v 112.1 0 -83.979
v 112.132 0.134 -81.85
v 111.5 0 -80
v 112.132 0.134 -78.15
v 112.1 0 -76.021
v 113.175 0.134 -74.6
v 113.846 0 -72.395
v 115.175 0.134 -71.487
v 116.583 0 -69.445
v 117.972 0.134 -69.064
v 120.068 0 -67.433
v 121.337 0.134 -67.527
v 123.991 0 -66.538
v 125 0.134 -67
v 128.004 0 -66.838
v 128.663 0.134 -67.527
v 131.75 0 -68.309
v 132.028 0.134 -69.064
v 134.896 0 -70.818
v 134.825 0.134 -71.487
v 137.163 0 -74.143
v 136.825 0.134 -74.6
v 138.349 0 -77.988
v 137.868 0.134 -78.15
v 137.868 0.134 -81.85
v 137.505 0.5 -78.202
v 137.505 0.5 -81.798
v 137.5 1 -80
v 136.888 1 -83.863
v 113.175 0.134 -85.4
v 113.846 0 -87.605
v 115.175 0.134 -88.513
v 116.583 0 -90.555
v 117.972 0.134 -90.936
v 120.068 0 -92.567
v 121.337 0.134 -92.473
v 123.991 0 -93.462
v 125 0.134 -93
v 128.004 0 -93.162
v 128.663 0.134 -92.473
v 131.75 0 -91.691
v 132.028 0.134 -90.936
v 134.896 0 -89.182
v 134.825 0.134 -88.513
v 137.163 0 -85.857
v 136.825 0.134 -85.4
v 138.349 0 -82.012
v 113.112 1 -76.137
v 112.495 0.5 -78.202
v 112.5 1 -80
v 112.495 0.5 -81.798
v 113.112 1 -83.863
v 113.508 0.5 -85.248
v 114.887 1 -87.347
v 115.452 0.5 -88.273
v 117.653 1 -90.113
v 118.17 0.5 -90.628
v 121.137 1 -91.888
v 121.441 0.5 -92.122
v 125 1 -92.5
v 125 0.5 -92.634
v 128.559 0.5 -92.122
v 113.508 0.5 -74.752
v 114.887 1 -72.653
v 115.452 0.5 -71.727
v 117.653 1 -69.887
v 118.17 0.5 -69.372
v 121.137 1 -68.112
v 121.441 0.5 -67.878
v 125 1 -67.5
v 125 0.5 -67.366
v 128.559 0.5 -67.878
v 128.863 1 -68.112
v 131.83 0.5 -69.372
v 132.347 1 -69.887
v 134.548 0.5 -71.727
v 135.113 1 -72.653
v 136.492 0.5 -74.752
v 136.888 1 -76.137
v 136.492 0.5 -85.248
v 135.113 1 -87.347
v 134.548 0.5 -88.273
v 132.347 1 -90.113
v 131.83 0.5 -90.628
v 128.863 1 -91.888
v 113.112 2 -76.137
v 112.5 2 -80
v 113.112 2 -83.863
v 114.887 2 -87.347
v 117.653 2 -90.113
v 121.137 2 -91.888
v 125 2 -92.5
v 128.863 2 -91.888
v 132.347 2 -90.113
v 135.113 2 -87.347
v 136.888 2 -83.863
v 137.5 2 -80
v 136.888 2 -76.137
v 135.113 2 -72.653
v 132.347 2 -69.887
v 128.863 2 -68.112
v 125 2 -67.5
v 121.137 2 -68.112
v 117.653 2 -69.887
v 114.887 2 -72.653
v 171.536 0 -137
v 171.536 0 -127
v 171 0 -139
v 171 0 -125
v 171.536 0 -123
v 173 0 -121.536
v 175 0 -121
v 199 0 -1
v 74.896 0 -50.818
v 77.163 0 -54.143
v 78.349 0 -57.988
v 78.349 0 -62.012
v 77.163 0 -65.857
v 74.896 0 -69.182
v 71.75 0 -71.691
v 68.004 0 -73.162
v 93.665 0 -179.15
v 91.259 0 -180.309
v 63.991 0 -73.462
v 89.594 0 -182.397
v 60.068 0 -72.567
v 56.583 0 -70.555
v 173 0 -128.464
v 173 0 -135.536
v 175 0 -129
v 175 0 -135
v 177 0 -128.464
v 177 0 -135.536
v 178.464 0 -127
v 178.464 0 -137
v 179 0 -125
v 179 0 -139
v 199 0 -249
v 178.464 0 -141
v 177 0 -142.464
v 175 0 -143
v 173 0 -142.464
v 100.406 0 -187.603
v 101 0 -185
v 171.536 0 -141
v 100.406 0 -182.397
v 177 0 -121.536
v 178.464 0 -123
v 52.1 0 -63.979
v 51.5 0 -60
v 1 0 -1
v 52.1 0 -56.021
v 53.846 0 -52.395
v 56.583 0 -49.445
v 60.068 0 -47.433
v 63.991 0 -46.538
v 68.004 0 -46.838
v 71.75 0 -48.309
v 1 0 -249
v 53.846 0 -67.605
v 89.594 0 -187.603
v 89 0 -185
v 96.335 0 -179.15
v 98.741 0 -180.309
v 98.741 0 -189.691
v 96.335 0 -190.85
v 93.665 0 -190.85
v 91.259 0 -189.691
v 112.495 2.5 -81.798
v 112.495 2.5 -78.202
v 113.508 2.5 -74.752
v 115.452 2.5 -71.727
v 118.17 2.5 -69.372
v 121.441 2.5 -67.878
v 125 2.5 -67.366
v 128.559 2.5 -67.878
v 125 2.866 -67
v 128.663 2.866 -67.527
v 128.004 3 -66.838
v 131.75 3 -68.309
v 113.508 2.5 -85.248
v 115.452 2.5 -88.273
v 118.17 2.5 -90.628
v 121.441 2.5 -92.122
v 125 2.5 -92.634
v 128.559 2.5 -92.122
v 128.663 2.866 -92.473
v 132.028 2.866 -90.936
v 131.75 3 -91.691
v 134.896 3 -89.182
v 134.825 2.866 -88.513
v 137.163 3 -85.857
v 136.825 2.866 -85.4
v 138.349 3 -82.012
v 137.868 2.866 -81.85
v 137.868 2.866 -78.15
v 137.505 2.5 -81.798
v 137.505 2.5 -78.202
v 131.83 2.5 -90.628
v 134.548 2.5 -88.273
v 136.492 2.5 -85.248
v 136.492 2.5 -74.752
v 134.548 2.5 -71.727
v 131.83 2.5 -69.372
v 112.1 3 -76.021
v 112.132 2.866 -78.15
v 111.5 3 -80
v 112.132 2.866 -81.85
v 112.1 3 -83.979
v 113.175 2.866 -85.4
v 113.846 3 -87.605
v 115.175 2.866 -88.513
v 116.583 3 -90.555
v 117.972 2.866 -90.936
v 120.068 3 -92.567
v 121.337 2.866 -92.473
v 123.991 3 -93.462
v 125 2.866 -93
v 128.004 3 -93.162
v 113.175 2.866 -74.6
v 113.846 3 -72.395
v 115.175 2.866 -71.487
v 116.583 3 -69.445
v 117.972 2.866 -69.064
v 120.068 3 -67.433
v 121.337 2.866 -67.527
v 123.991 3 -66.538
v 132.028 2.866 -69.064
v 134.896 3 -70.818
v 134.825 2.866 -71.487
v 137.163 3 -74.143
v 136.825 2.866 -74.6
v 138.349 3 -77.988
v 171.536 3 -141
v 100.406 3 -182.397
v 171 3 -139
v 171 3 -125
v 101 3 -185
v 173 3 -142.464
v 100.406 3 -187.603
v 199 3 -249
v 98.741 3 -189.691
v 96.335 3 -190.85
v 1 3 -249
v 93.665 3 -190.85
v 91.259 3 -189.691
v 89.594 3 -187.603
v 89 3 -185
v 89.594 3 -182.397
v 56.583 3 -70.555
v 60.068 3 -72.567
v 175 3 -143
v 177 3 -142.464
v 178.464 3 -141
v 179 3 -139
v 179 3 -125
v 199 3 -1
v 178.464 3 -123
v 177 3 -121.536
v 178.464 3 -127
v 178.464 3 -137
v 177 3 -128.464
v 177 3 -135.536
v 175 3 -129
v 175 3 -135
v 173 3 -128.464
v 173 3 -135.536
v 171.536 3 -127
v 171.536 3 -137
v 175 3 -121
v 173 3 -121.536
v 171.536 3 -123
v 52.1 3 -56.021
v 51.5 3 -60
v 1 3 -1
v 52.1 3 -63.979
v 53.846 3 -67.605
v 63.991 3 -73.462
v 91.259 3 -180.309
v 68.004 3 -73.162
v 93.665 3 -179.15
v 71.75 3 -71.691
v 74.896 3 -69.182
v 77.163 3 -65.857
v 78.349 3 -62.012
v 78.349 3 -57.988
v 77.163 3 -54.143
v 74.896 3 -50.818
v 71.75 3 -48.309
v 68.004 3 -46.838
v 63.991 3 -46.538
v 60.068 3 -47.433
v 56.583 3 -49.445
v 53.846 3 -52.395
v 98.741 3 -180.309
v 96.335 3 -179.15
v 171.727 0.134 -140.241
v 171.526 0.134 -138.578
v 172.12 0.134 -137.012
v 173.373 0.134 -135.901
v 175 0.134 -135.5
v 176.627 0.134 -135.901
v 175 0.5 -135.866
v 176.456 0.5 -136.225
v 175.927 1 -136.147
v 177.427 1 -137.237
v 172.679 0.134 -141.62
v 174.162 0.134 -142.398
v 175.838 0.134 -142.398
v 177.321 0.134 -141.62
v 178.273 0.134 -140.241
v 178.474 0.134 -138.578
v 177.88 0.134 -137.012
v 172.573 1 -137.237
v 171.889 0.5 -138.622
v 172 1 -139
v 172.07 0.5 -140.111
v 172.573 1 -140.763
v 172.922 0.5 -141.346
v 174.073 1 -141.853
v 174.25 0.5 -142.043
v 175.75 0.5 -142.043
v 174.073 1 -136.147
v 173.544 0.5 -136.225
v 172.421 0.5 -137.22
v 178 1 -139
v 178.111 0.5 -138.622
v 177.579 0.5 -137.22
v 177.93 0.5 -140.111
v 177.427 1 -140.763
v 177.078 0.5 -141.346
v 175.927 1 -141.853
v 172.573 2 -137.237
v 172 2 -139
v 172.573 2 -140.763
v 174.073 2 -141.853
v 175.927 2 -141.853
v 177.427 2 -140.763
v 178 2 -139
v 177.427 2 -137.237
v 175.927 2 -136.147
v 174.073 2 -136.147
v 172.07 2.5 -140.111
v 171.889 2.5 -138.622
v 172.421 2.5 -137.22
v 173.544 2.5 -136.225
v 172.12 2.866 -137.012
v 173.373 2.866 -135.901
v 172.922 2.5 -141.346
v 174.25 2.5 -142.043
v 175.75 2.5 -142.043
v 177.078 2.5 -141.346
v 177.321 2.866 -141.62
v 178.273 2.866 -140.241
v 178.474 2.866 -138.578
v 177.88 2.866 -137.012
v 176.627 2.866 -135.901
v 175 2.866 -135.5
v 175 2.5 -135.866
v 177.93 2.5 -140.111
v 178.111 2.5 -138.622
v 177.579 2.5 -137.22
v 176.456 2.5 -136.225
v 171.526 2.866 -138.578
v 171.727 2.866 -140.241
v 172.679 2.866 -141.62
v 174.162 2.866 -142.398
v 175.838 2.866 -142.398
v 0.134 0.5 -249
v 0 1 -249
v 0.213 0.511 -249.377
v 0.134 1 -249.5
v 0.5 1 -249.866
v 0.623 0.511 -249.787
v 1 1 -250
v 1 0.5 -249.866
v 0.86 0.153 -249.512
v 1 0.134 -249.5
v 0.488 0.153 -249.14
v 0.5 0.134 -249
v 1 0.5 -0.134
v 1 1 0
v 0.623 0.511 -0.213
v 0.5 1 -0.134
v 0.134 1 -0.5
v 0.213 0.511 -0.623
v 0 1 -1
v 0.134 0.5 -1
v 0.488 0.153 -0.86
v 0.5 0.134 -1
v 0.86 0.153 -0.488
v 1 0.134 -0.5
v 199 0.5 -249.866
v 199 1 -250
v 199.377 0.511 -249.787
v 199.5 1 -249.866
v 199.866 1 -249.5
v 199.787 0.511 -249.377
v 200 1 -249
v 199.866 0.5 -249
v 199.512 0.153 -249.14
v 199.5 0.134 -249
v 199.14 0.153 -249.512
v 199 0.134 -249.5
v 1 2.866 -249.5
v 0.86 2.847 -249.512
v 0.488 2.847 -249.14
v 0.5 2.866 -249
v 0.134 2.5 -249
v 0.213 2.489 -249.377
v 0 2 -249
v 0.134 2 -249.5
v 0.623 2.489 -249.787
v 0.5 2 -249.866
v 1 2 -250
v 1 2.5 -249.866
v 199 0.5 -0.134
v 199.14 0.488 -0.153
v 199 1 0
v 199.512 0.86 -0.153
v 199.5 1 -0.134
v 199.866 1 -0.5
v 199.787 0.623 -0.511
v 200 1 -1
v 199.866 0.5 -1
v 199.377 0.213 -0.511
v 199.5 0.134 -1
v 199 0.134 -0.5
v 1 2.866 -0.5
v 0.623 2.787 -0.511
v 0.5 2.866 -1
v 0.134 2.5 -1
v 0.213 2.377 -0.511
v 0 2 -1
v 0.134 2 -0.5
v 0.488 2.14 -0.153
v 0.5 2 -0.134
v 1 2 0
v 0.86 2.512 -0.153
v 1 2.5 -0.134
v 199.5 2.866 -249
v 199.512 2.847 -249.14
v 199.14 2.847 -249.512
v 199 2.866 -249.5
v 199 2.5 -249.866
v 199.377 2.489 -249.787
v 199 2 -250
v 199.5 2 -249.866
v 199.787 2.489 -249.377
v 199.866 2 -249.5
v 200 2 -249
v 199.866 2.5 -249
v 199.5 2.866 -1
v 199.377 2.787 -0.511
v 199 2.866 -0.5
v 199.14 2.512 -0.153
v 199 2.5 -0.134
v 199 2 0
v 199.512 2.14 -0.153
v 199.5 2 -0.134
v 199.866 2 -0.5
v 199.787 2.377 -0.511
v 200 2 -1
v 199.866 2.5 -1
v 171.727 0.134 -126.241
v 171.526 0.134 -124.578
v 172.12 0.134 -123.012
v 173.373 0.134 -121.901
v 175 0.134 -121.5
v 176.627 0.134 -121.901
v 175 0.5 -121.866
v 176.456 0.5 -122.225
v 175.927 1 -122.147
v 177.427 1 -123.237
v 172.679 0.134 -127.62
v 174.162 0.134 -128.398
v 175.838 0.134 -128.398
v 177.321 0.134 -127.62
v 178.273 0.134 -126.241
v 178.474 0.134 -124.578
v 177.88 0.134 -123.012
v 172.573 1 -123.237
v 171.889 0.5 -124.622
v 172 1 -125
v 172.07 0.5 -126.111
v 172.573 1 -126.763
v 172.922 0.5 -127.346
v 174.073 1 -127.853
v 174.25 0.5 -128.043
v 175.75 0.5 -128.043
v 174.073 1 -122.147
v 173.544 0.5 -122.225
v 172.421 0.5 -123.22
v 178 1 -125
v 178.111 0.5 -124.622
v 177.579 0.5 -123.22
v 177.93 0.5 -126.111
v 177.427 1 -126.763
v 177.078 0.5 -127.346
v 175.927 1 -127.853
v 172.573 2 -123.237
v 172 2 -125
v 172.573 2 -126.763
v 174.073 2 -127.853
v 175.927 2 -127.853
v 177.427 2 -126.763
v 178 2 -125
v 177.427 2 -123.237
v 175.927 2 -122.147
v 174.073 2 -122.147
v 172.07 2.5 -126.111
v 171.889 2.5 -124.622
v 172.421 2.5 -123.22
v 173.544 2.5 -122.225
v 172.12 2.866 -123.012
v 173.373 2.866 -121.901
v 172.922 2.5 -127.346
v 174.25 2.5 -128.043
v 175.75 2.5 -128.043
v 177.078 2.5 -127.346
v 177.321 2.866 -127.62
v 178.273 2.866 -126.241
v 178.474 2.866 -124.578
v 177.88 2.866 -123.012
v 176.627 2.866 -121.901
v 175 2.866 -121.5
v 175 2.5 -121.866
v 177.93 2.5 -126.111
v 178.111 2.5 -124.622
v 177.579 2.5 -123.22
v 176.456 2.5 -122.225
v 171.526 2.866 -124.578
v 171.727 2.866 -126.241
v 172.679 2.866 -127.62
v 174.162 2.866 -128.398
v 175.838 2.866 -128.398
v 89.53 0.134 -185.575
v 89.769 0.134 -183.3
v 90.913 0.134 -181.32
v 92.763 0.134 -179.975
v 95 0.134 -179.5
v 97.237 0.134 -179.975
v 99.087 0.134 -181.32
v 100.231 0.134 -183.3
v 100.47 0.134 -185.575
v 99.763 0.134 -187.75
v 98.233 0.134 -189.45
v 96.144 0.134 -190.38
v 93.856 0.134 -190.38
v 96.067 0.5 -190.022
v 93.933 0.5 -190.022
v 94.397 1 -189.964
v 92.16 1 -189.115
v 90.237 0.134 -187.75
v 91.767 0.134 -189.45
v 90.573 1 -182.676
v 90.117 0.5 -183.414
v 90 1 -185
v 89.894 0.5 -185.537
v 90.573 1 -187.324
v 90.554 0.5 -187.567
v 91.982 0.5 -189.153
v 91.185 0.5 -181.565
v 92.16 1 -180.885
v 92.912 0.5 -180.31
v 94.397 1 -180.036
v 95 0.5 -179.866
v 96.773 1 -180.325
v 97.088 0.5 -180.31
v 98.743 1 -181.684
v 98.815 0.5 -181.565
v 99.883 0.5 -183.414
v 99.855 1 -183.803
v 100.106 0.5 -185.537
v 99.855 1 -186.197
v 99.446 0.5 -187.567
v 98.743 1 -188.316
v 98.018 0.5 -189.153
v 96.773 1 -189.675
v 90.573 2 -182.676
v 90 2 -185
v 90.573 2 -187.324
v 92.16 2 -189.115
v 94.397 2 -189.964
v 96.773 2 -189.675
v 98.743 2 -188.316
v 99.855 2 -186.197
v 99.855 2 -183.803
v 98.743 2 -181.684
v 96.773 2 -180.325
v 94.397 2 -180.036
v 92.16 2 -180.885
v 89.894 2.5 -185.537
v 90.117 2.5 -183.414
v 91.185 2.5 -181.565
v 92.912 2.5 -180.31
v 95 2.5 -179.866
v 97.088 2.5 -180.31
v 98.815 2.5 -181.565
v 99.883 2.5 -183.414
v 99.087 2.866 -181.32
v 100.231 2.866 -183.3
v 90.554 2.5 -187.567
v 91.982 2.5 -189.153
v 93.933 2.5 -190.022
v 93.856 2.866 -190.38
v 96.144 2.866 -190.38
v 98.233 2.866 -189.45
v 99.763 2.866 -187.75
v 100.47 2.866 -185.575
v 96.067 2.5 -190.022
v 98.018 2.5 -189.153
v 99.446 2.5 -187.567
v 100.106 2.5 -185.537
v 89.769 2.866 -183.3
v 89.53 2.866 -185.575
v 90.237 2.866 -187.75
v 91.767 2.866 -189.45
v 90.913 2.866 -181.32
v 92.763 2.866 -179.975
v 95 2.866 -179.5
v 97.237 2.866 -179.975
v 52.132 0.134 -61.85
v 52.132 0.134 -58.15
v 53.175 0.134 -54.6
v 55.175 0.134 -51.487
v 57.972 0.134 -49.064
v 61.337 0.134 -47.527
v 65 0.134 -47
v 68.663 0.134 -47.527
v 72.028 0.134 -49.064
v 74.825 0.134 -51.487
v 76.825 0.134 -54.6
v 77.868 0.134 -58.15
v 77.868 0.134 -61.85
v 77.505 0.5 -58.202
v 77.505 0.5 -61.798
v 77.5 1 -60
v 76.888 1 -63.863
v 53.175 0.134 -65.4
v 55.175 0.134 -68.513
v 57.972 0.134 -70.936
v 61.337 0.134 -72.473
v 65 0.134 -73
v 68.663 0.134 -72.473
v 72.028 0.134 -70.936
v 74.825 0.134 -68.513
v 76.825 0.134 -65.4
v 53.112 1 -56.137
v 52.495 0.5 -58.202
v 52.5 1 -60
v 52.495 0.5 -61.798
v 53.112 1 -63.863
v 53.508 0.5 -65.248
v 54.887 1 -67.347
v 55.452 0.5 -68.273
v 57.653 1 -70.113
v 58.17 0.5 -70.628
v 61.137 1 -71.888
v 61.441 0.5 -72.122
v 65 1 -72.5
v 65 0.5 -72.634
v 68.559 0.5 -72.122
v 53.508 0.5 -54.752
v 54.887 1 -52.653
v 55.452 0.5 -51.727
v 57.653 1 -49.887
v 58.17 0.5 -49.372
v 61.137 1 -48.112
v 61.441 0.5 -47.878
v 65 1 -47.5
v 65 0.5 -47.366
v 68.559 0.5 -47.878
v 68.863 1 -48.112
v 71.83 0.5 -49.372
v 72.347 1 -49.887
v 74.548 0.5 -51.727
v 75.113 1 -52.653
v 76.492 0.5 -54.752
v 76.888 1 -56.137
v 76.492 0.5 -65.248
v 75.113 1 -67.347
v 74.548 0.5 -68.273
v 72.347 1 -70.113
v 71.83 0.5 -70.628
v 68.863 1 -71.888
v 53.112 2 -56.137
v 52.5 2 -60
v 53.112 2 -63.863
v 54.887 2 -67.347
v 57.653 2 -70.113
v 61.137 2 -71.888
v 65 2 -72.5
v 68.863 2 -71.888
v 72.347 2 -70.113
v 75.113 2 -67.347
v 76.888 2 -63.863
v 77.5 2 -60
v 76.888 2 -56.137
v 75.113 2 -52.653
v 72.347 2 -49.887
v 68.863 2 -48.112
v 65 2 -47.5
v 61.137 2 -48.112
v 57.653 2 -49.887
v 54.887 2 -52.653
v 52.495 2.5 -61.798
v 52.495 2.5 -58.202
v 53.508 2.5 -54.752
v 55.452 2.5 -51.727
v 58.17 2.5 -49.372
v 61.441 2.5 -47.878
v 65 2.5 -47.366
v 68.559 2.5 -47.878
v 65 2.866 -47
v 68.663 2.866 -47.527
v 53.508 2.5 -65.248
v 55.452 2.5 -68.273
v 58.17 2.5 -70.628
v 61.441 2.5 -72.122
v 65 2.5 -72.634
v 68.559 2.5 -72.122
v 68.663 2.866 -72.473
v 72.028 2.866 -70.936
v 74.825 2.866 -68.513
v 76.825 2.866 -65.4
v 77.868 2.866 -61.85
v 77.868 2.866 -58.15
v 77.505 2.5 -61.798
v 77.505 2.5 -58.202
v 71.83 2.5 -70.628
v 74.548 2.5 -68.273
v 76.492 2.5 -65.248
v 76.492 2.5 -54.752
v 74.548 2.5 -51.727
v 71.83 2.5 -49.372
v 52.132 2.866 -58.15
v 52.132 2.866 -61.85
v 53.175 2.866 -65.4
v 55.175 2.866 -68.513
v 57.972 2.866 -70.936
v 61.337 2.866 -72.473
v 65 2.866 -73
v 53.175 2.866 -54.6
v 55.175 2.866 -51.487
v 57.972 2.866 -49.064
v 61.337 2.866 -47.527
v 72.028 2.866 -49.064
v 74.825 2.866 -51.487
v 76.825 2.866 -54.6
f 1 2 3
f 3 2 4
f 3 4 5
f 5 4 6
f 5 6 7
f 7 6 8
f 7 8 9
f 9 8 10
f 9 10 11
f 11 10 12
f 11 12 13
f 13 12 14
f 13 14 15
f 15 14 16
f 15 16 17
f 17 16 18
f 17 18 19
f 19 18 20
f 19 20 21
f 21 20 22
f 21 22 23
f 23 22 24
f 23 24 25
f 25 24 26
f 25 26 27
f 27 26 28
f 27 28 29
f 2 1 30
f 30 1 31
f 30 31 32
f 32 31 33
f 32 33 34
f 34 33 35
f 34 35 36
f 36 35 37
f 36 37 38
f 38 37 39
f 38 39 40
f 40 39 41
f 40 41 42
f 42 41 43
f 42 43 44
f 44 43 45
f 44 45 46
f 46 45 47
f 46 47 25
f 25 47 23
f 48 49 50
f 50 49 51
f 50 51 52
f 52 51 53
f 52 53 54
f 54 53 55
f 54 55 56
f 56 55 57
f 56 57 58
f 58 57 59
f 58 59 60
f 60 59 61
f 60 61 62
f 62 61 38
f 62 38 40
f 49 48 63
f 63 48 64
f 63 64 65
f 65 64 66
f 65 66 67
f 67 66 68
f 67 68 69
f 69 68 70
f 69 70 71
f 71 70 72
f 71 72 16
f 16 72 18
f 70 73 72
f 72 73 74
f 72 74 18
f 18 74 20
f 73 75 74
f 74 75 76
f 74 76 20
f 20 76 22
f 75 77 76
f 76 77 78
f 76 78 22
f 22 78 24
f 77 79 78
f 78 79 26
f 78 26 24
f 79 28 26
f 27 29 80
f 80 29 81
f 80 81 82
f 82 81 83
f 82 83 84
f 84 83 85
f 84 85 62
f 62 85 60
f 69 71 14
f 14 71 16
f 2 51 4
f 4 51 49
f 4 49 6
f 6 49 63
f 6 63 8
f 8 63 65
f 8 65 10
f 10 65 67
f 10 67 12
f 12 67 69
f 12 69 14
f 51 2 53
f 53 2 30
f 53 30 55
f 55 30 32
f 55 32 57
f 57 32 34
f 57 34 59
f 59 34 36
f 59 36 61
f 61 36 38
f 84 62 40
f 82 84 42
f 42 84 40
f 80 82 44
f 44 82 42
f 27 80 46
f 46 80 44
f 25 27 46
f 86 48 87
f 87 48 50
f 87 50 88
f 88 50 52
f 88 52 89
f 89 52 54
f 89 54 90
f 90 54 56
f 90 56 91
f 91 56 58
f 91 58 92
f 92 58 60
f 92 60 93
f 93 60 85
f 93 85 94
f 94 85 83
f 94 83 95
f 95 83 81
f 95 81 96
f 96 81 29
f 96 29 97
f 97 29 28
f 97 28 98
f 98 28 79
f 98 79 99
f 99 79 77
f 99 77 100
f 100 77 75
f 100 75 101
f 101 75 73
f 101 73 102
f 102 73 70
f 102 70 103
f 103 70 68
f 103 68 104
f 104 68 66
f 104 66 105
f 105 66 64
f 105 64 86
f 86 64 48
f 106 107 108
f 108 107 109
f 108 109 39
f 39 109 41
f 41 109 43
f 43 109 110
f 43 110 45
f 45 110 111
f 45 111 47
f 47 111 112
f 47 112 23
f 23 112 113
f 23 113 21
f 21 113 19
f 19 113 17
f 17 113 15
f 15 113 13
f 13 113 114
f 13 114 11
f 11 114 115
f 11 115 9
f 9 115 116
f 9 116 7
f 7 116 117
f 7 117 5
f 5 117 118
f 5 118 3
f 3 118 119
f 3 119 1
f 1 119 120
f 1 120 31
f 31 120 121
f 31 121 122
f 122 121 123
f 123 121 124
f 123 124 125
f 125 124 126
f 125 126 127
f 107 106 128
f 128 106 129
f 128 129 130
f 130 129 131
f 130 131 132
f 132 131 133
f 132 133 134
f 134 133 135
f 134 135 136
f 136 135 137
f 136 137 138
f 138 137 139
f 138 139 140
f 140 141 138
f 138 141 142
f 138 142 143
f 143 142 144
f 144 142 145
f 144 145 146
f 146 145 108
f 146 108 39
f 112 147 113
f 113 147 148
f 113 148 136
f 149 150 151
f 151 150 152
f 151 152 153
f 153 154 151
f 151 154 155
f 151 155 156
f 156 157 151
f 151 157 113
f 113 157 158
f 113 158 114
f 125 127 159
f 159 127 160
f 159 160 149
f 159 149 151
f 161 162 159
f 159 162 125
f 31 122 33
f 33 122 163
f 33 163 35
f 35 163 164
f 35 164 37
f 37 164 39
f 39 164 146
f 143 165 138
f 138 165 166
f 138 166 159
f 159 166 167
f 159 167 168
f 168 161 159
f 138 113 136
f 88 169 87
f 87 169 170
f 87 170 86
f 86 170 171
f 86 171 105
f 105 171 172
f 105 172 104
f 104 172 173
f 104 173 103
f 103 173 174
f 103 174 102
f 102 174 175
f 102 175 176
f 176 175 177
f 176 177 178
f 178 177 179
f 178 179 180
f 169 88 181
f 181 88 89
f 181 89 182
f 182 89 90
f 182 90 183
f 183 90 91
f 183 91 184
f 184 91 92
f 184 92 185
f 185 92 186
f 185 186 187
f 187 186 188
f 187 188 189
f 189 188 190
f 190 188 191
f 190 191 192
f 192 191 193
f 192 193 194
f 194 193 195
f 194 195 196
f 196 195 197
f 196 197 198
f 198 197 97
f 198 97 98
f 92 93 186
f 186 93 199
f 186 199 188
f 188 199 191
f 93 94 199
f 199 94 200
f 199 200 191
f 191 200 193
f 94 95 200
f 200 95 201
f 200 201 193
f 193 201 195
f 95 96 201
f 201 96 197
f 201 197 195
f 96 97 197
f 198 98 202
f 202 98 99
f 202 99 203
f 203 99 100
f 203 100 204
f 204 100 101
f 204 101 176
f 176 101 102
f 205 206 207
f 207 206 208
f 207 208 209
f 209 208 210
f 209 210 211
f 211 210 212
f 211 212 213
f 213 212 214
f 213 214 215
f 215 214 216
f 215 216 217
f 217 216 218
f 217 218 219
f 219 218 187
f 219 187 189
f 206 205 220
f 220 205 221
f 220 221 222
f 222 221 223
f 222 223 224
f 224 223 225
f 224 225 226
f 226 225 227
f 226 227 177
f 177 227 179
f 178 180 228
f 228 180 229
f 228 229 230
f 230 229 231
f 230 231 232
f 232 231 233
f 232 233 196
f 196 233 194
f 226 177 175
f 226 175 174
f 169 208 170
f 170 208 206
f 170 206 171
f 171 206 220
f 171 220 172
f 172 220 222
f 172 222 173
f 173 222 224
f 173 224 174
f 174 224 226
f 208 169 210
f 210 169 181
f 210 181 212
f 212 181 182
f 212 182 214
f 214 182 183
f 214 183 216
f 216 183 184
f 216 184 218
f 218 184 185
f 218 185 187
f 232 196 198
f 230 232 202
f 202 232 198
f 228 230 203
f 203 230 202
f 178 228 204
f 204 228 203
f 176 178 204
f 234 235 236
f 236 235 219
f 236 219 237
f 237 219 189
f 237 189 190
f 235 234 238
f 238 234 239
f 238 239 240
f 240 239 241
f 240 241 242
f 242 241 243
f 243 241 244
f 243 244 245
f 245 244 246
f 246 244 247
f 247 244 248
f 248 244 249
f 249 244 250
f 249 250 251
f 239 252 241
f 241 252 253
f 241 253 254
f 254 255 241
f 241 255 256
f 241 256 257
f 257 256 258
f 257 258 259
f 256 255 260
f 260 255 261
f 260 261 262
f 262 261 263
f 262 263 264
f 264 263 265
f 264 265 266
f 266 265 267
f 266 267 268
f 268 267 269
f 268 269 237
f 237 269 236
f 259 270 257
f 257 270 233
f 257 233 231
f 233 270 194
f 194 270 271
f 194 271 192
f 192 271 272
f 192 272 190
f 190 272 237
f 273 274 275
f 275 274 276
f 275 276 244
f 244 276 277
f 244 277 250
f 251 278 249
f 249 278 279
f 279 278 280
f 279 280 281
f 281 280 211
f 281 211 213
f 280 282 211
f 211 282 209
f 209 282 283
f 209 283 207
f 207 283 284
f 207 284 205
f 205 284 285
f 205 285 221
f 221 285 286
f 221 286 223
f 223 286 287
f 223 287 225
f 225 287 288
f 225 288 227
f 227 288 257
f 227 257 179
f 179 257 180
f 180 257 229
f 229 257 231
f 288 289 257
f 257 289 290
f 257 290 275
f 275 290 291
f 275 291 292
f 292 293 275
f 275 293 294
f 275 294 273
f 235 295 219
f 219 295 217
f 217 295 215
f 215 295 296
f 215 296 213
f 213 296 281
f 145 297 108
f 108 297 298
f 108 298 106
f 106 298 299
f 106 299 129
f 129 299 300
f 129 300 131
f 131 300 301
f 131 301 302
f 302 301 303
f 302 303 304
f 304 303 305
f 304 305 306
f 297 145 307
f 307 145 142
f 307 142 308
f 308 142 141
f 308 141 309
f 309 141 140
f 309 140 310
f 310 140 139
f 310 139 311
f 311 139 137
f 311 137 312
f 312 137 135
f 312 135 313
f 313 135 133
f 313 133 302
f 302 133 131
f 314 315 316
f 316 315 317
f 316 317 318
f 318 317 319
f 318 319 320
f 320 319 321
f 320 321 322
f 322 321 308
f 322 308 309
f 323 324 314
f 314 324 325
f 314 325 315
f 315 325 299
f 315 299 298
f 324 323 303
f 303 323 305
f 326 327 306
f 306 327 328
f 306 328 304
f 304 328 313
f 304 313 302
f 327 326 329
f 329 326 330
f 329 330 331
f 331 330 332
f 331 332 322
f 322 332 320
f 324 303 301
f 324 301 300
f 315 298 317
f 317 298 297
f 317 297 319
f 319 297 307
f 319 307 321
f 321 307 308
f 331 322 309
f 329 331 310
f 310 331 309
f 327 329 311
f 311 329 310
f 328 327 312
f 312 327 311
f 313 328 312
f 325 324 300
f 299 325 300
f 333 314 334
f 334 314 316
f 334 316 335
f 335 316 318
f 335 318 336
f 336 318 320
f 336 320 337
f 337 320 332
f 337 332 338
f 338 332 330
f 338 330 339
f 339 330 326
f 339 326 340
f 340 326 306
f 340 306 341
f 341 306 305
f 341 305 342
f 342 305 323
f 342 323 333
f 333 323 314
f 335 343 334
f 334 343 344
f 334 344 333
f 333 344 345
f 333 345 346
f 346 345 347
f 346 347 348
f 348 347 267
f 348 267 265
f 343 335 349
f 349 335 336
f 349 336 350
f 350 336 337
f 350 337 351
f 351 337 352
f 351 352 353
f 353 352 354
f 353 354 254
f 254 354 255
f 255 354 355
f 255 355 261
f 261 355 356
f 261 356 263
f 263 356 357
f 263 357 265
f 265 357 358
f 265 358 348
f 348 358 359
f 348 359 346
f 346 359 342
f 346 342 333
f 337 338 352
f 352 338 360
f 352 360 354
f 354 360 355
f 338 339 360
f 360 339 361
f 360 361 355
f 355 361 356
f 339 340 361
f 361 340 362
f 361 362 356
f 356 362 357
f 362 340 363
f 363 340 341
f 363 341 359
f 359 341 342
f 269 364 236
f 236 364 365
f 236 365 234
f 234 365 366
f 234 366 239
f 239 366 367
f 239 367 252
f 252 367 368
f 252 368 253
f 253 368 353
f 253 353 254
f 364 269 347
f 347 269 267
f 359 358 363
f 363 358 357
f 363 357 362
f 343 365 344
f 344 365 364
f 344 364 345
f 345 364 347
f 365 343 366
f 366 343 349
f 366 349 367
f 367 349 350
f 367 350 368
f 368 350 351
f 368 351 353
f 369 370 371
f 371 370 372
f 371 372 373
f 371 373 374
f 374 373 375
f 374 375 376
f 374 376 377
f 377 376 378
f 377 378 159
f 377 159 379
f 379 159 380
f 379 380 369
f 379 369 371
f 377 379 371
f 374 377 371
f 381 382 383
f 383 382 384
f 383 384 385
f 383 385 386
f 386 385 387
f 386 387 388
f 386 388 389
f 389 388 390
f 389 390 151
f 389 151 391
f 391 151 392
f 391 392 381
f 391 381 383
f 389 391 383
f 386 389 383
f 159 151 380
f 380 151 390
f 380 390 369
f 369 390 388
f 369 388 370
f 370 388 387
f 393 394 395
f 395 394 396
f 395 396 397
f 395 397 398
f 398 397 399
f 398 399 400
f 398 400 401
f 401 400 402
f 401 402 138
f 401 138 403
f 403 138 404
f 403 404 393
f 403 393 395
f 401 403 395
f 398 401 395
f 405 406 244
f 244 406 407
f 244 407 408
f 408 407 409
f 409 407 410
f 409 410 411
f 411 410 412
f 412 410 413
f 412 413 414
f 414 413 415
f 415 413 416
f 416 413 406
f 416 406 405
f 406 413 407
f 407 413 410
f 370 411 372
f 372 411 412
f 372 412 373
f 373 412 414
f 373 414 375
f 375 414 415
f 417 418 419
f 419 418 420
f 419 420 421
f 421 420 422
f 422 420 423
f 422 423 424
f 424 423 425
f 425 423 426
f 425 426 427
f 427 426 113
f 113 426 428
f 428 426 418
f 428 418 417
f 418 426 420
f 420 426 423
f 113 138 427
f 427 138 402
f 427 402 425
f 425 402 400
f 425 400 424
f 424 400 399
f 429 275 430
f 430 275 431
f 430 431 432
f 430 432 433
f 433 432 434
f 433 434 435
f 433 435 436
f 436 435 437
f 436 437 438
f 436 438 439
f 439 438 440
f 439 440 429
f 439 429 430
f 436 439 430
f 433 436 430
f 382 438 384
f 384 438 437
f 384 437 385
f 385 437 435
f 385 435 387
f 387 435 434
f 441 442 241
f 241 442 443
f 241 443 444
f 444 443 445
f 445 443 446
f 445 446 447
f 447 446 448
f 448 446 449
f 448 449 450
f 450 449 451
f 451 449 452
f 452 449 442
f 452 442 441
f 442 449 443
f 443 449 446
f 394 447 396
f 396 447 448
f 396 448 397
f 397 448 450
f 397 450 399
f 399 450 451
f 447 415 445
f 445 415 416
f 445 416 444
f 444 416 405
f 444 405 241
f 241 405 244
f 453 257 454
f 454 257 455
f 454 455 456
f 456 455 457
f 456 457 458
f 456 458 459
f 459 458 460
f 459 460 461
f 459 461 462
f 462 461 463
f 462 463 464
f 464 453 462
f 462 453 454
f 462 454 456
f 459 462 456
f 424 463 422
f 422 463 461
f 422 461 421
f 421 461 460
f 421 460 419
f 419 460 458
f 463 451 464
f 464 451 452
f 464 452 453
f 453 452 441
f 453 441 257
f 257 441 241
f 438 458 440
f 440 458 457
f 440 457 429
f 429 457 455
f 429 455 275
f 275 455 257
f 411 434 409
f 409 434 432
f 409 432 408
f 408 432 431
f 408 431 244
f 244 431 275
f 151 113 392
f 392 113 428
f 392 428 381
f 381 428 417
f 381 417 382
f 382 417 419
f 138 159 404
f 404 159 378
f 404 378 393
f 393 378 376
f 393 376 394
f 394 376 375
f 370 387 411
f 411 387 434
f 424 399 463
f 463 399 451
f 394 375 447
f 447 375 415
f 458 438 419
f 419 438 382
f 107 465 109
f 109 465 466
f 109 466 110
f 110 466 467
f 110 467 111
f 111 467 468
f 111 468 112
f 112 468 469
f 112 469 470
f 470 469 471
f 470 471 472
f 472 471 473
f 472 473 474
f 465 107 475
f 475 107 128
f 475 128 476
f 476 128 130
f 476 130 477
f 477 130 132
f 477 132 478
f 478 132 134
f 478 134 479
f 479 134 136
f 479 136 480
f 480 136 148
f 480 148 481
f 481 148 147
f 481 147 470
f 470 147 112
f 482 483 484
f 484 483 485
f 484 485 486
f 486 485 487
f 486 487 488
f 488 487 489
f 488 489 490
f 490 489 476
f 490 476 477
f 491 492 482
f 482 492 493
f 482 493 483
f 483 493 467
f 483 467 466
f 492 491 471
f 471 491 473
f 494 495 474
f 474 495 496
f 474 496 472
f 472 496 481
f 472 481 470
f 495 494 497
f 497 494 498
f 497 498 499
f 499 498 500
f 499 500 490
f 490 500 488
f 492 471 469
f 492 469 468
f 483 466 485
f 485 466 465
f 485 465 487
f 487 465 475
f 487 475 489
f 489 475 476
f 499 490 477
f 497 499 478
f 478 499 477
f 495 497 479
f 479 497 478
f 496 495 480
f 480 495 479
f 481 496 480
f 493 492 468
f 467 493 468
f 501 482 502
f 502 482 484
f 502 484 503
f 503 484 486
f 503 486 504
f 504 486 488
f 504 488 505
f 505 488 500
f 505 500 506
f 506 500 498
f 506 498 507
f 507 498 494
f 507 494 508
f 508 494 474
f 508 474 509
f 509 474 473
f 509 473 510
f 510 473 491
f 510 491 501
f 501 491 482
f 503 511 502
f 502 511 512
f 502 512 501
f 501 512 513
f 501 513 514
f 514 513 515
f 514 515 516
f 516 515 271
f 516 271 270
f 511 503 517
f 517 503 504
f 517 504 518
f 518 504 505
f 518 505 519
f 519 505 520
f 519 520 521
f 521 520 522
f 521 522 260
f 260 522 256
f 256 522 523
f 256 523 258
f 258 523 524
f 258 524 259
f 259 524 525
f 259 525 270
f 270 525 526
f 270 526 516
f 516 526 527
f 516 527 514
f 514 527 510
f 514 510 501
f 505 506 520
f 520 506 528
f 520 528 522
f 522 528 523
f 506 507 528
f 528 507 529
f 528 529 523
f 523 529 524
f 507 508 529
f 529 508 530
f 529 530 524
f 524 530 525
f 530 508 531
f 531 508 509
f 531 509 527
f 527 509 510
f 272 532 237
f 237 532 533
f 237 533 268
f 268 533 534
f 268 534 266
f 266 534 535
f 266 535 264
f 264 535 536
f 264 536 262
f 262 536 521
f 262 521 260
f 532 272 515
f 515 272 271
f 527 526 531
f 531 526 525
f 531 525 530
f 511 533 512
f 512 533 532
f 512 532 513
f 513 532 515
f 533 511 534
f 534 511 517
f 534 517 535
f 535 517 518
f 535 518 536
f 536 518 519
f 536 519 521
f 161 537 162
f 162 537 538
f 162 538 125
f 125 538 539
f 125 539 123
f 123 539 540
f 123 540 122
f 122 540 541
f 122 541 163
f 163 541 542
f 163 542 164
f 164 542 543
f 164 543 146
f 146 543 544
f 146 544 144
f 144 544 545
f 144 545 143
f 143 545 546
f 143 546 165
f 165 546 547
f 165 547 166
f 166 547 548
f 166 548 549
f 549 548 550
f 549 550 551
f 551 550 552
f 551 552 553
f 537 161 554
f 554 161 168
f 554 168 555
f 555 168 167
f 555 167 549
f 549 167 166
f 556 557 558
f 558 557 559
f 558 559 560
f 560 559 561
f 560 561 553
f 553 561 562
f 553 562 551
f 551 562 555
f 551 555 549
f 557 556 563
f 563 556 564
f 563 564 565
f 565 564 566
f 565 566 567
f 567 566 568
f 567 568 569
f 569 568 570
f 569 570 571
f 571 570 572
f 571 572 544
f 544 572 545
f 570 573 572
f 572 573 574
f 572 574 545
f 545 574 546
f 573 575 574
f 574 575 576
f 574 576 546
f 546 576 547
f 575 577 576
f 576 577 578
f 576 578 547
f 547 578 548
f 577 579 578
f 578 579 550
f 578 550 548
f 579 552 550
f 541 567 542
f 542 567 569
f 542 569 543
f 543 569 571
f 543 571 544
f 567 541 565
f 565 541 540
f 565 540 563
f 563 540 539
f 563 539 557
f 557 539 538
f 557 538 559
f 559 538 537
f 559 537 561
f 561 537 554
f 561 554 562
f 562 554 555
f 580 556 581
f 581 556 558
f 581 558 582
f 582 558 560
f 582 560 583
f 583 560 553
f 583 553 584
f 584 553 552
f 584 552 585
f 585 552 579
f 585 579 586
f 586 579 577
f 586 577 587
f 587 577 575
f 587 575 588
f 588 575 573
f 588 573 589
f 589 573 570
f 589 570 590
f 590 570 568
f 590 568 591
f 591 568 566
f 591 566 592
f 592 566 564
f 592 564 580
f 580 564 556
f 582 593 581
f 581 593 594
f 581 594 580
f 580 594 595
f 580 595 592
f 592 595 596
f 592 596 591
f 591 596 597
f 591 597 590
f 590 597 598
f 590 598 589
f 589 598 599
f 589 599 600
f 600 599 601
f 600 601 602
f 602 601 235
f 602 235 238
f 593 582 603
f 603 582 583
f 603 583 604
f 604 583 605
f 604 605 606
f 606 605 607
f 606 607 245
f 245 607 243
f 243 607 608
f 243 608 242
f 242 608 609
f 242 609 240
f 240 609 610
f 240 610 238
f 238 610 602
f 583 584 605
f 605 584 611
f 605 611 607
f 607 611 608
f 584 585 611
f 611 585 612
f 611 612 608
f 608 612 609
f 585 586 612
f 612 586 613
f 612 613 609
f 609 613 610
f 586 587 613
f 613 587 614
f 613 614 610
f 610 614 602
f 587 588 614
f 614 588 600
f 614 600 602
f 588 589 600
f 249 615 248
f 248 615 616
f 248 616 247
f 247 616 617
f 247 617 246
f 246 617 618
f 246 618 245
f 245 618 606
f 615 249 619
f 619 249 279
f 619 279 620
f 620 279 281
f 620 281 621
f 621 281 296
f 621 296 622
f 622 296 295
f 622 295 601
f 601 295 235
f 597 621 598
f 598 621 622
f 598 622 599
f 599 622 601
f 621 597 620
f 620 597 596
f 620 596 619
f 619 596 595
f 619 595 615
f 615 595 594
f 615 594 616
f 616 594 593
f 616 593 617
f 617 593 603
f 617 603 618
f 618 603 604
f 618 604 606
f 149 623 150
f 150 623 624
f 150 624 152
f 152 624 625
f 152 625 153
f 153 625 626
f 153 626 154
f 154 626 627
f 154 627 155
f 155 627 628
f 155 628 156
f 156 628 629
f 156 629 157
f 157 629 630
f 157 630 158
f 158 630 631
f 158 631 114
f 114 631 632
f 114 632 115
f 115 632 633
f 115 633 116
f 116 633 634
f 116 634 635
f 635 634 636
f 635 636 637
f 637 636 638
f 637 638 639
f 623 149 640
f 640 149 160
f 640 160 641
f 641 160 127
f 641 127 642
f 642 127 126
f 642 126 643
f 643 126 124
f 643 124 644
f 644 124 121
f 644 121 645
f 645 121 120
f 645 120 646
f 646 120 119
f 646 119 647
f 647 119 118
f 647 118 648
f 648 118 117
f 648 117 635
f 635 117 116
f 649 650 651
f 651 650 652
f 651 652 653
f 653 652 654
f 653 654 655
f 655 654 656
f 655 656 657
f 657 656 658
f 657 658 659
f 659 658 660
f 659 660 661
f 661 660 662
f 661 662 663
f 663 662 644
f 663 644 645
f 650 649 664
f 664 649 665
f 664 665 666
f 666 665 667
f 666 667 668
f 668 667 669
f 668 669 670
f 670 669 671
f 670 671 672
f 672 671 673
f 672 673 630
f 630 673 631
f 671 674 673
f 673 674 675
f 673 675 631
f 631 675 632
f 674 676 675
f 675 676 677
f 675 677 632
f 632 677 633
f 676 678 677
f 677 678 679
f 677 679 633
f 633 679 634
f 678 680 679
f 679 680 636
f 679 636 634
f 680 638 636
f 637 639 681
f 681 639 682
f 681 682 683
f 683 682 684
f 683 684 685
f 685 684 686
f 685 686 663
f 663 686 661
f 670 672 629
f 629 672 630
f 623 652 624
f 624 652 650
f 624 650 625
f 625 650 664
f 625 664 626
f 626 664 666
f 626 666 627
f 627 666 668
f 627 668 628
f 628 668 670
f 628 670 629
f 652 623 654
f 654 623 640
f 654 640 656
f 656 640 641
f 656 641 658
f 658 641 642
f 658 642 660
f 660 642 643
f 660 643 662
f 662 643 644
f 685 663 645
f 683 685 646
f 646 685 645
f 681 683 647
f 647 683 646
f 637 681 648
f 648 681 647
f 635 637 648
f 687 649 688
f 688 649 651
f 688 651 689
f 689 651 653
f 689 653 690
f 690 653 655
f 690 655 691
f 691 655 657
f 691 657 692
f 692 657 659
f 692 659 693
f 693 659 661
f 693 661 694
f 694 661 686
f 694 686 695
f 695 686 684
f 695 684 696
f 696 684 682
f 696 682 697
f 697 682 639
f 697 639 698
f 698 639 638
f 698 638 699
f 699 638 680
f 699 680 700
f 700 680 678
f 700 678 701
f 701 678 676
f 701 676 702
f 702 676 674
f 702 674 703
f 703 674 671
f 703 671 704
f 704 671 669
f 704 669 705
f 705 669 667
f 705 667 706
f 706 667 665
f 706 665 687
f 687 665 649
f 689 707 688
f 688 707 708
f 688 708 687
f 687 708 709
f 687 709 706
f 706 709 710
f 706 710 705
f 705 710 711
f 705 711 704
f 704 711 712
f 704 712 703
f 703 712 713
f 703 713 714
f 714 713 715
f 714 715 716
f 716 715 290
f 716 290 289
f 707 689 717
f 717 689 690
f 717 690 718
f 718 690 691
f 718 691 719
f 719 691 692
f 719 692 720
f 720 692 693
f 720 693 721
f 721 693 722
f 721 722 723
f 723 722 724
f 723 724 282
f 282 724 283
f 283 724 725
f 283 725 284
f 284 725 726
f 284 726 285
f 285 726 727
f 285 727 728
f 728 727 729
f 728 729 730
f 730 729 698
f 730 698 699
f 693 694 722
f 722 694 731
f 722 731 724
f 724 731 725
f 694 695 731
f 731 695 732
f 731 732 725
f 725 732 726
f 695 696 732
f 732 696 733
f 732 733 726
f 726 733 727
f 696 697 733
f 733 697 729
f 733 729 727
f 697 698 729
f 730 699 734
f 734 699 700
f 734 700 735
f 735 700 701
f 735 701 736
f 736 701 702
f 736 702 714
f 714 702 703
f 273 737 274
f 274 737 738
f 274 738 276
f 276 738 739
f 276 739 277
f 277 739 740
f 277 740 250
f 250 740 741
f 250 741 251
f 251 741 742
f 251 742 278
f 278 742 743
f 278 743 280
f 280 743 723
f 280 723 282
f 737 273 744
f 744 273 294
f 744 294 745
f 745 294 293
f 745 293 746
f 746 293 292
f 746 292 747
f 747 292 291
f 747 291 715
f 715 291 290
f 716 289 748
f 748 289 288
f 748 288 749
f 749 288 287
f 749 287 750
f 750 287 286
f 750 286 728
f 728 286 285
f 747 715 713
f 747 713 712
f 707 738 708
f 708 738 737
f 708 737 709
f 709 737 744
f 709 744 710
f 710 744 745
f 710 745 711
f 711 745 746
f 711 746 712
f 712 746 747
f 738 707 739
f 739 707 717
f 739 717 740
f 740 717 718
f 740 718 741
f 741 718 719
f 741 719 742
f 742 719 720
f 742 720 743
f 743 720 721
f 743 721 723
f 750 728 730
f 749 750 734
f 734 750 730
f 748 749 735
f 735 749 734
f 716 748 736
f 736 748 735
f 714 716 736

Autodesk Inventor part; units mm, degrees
ref_plane "YZ Plane" through (0, 0, 0) normal (1, 0, 0) x (0, 1, 0)
ref_plane "XZ Plane" through (0, 0, 0) normal (0, 1, 0) x (-1, 0, 0)
ref_plane "XY Plane" through (0, 0, 0) normal (0, 0, 1) x (1, 0, 0)
sketch "page_lines" plane through (0, 0, 0) normal (0, 1, 0) x (-1, 0, 0)
  line L0 (0, 0) -> (-200, 0)
  line L1 (-200, 0) -> (-200, -250)
  line L2 (-200, -250) -> (0, -250)
  line L3 (0, -250) -> (0, 0)
  circle A0 centre (-65, -60) radius 6
  circle A1 centre (-125, -80) radius 6
  circle A2 centre (-65, -60) radius 12.5
  circle A3 centre (-65, -60) radius 8.5
  circle A4 centre (-125, -80) radius 8.5
  circle A5 centre (-125, -80) radius 12.5
  circle A6 centre (-175, -125) radius 3
  line L4 (-175, -125) -> (-175, -209)
  line L5 (-175, -125) -> (-91, -125) construction
  circle A7 centre (-175, -139) radius 3
  circle A8 centre (-175, -153) radius 3
  circle A9 centre (-175, -167) radius 3
  circle A10 centre (-175, -181) radius 3
  circle A11 centre (-175, -195) radius 3
  circle A12 centre (-175, -209) radius 3
  circle A13 centre (-95, -185) radius 2.5
  circle A14 centre (-95, -185) radius 5
  point P0 (-200, -125)
  dimension "d0" = 200
  dimension "d1" = 250
  dimension "d2" = 12
  dimension "d3" = 12
  dimension "d4" = 25
  dimension "d5" = 17
  dimension "d6" = 17
  dimension "d7" = 25
  dimension "d8" = 75
  dimension "d9" = 80
  dimension "d10" = 65
  dimension "d11" = 60
  dimension "d12" = 6
  dimension "d13" = 84
  dimension "d14" = 90
  dimension "d15" = 25
  dimension "d16" = 125
  dimension "d19" = 14
  dimension "d24" = 5
  dimension "d25" = 10
  dimension "d26" = 65
  dimension "d27" = 95
extrude "and" add sketch "page_lines" along normal blind 3 contours L3 L2 L1 L0 | A8 L4 | L4 A8 | A9 L4 | L4 A9 | A10 L4 | L4 A10 | A11 L4 | L4 A11 | A12
fillet "Fillet1" radius 1 22 edges at (77.5, 3, -60) (77.5, 0, -60) (100, 3, -185) (100, 0, -185) (178, 3, -125) (178, 0, -125) (200, 3, -125) (200, 0, -125) (100, 0, 0) (100, 3, 0) (200, 1.5, 0) (0, 1.5, 0) (0, 3, -125) (0, 0, -125) (0, 1.5, -250) (100, 3, -250) (100, 0, -250) (200, 1.5, -250) (178, 3, -139) (178, 0, -139) (137.5, 3, -80) (137.5, 0, -80)
properties part number "pages_and"
